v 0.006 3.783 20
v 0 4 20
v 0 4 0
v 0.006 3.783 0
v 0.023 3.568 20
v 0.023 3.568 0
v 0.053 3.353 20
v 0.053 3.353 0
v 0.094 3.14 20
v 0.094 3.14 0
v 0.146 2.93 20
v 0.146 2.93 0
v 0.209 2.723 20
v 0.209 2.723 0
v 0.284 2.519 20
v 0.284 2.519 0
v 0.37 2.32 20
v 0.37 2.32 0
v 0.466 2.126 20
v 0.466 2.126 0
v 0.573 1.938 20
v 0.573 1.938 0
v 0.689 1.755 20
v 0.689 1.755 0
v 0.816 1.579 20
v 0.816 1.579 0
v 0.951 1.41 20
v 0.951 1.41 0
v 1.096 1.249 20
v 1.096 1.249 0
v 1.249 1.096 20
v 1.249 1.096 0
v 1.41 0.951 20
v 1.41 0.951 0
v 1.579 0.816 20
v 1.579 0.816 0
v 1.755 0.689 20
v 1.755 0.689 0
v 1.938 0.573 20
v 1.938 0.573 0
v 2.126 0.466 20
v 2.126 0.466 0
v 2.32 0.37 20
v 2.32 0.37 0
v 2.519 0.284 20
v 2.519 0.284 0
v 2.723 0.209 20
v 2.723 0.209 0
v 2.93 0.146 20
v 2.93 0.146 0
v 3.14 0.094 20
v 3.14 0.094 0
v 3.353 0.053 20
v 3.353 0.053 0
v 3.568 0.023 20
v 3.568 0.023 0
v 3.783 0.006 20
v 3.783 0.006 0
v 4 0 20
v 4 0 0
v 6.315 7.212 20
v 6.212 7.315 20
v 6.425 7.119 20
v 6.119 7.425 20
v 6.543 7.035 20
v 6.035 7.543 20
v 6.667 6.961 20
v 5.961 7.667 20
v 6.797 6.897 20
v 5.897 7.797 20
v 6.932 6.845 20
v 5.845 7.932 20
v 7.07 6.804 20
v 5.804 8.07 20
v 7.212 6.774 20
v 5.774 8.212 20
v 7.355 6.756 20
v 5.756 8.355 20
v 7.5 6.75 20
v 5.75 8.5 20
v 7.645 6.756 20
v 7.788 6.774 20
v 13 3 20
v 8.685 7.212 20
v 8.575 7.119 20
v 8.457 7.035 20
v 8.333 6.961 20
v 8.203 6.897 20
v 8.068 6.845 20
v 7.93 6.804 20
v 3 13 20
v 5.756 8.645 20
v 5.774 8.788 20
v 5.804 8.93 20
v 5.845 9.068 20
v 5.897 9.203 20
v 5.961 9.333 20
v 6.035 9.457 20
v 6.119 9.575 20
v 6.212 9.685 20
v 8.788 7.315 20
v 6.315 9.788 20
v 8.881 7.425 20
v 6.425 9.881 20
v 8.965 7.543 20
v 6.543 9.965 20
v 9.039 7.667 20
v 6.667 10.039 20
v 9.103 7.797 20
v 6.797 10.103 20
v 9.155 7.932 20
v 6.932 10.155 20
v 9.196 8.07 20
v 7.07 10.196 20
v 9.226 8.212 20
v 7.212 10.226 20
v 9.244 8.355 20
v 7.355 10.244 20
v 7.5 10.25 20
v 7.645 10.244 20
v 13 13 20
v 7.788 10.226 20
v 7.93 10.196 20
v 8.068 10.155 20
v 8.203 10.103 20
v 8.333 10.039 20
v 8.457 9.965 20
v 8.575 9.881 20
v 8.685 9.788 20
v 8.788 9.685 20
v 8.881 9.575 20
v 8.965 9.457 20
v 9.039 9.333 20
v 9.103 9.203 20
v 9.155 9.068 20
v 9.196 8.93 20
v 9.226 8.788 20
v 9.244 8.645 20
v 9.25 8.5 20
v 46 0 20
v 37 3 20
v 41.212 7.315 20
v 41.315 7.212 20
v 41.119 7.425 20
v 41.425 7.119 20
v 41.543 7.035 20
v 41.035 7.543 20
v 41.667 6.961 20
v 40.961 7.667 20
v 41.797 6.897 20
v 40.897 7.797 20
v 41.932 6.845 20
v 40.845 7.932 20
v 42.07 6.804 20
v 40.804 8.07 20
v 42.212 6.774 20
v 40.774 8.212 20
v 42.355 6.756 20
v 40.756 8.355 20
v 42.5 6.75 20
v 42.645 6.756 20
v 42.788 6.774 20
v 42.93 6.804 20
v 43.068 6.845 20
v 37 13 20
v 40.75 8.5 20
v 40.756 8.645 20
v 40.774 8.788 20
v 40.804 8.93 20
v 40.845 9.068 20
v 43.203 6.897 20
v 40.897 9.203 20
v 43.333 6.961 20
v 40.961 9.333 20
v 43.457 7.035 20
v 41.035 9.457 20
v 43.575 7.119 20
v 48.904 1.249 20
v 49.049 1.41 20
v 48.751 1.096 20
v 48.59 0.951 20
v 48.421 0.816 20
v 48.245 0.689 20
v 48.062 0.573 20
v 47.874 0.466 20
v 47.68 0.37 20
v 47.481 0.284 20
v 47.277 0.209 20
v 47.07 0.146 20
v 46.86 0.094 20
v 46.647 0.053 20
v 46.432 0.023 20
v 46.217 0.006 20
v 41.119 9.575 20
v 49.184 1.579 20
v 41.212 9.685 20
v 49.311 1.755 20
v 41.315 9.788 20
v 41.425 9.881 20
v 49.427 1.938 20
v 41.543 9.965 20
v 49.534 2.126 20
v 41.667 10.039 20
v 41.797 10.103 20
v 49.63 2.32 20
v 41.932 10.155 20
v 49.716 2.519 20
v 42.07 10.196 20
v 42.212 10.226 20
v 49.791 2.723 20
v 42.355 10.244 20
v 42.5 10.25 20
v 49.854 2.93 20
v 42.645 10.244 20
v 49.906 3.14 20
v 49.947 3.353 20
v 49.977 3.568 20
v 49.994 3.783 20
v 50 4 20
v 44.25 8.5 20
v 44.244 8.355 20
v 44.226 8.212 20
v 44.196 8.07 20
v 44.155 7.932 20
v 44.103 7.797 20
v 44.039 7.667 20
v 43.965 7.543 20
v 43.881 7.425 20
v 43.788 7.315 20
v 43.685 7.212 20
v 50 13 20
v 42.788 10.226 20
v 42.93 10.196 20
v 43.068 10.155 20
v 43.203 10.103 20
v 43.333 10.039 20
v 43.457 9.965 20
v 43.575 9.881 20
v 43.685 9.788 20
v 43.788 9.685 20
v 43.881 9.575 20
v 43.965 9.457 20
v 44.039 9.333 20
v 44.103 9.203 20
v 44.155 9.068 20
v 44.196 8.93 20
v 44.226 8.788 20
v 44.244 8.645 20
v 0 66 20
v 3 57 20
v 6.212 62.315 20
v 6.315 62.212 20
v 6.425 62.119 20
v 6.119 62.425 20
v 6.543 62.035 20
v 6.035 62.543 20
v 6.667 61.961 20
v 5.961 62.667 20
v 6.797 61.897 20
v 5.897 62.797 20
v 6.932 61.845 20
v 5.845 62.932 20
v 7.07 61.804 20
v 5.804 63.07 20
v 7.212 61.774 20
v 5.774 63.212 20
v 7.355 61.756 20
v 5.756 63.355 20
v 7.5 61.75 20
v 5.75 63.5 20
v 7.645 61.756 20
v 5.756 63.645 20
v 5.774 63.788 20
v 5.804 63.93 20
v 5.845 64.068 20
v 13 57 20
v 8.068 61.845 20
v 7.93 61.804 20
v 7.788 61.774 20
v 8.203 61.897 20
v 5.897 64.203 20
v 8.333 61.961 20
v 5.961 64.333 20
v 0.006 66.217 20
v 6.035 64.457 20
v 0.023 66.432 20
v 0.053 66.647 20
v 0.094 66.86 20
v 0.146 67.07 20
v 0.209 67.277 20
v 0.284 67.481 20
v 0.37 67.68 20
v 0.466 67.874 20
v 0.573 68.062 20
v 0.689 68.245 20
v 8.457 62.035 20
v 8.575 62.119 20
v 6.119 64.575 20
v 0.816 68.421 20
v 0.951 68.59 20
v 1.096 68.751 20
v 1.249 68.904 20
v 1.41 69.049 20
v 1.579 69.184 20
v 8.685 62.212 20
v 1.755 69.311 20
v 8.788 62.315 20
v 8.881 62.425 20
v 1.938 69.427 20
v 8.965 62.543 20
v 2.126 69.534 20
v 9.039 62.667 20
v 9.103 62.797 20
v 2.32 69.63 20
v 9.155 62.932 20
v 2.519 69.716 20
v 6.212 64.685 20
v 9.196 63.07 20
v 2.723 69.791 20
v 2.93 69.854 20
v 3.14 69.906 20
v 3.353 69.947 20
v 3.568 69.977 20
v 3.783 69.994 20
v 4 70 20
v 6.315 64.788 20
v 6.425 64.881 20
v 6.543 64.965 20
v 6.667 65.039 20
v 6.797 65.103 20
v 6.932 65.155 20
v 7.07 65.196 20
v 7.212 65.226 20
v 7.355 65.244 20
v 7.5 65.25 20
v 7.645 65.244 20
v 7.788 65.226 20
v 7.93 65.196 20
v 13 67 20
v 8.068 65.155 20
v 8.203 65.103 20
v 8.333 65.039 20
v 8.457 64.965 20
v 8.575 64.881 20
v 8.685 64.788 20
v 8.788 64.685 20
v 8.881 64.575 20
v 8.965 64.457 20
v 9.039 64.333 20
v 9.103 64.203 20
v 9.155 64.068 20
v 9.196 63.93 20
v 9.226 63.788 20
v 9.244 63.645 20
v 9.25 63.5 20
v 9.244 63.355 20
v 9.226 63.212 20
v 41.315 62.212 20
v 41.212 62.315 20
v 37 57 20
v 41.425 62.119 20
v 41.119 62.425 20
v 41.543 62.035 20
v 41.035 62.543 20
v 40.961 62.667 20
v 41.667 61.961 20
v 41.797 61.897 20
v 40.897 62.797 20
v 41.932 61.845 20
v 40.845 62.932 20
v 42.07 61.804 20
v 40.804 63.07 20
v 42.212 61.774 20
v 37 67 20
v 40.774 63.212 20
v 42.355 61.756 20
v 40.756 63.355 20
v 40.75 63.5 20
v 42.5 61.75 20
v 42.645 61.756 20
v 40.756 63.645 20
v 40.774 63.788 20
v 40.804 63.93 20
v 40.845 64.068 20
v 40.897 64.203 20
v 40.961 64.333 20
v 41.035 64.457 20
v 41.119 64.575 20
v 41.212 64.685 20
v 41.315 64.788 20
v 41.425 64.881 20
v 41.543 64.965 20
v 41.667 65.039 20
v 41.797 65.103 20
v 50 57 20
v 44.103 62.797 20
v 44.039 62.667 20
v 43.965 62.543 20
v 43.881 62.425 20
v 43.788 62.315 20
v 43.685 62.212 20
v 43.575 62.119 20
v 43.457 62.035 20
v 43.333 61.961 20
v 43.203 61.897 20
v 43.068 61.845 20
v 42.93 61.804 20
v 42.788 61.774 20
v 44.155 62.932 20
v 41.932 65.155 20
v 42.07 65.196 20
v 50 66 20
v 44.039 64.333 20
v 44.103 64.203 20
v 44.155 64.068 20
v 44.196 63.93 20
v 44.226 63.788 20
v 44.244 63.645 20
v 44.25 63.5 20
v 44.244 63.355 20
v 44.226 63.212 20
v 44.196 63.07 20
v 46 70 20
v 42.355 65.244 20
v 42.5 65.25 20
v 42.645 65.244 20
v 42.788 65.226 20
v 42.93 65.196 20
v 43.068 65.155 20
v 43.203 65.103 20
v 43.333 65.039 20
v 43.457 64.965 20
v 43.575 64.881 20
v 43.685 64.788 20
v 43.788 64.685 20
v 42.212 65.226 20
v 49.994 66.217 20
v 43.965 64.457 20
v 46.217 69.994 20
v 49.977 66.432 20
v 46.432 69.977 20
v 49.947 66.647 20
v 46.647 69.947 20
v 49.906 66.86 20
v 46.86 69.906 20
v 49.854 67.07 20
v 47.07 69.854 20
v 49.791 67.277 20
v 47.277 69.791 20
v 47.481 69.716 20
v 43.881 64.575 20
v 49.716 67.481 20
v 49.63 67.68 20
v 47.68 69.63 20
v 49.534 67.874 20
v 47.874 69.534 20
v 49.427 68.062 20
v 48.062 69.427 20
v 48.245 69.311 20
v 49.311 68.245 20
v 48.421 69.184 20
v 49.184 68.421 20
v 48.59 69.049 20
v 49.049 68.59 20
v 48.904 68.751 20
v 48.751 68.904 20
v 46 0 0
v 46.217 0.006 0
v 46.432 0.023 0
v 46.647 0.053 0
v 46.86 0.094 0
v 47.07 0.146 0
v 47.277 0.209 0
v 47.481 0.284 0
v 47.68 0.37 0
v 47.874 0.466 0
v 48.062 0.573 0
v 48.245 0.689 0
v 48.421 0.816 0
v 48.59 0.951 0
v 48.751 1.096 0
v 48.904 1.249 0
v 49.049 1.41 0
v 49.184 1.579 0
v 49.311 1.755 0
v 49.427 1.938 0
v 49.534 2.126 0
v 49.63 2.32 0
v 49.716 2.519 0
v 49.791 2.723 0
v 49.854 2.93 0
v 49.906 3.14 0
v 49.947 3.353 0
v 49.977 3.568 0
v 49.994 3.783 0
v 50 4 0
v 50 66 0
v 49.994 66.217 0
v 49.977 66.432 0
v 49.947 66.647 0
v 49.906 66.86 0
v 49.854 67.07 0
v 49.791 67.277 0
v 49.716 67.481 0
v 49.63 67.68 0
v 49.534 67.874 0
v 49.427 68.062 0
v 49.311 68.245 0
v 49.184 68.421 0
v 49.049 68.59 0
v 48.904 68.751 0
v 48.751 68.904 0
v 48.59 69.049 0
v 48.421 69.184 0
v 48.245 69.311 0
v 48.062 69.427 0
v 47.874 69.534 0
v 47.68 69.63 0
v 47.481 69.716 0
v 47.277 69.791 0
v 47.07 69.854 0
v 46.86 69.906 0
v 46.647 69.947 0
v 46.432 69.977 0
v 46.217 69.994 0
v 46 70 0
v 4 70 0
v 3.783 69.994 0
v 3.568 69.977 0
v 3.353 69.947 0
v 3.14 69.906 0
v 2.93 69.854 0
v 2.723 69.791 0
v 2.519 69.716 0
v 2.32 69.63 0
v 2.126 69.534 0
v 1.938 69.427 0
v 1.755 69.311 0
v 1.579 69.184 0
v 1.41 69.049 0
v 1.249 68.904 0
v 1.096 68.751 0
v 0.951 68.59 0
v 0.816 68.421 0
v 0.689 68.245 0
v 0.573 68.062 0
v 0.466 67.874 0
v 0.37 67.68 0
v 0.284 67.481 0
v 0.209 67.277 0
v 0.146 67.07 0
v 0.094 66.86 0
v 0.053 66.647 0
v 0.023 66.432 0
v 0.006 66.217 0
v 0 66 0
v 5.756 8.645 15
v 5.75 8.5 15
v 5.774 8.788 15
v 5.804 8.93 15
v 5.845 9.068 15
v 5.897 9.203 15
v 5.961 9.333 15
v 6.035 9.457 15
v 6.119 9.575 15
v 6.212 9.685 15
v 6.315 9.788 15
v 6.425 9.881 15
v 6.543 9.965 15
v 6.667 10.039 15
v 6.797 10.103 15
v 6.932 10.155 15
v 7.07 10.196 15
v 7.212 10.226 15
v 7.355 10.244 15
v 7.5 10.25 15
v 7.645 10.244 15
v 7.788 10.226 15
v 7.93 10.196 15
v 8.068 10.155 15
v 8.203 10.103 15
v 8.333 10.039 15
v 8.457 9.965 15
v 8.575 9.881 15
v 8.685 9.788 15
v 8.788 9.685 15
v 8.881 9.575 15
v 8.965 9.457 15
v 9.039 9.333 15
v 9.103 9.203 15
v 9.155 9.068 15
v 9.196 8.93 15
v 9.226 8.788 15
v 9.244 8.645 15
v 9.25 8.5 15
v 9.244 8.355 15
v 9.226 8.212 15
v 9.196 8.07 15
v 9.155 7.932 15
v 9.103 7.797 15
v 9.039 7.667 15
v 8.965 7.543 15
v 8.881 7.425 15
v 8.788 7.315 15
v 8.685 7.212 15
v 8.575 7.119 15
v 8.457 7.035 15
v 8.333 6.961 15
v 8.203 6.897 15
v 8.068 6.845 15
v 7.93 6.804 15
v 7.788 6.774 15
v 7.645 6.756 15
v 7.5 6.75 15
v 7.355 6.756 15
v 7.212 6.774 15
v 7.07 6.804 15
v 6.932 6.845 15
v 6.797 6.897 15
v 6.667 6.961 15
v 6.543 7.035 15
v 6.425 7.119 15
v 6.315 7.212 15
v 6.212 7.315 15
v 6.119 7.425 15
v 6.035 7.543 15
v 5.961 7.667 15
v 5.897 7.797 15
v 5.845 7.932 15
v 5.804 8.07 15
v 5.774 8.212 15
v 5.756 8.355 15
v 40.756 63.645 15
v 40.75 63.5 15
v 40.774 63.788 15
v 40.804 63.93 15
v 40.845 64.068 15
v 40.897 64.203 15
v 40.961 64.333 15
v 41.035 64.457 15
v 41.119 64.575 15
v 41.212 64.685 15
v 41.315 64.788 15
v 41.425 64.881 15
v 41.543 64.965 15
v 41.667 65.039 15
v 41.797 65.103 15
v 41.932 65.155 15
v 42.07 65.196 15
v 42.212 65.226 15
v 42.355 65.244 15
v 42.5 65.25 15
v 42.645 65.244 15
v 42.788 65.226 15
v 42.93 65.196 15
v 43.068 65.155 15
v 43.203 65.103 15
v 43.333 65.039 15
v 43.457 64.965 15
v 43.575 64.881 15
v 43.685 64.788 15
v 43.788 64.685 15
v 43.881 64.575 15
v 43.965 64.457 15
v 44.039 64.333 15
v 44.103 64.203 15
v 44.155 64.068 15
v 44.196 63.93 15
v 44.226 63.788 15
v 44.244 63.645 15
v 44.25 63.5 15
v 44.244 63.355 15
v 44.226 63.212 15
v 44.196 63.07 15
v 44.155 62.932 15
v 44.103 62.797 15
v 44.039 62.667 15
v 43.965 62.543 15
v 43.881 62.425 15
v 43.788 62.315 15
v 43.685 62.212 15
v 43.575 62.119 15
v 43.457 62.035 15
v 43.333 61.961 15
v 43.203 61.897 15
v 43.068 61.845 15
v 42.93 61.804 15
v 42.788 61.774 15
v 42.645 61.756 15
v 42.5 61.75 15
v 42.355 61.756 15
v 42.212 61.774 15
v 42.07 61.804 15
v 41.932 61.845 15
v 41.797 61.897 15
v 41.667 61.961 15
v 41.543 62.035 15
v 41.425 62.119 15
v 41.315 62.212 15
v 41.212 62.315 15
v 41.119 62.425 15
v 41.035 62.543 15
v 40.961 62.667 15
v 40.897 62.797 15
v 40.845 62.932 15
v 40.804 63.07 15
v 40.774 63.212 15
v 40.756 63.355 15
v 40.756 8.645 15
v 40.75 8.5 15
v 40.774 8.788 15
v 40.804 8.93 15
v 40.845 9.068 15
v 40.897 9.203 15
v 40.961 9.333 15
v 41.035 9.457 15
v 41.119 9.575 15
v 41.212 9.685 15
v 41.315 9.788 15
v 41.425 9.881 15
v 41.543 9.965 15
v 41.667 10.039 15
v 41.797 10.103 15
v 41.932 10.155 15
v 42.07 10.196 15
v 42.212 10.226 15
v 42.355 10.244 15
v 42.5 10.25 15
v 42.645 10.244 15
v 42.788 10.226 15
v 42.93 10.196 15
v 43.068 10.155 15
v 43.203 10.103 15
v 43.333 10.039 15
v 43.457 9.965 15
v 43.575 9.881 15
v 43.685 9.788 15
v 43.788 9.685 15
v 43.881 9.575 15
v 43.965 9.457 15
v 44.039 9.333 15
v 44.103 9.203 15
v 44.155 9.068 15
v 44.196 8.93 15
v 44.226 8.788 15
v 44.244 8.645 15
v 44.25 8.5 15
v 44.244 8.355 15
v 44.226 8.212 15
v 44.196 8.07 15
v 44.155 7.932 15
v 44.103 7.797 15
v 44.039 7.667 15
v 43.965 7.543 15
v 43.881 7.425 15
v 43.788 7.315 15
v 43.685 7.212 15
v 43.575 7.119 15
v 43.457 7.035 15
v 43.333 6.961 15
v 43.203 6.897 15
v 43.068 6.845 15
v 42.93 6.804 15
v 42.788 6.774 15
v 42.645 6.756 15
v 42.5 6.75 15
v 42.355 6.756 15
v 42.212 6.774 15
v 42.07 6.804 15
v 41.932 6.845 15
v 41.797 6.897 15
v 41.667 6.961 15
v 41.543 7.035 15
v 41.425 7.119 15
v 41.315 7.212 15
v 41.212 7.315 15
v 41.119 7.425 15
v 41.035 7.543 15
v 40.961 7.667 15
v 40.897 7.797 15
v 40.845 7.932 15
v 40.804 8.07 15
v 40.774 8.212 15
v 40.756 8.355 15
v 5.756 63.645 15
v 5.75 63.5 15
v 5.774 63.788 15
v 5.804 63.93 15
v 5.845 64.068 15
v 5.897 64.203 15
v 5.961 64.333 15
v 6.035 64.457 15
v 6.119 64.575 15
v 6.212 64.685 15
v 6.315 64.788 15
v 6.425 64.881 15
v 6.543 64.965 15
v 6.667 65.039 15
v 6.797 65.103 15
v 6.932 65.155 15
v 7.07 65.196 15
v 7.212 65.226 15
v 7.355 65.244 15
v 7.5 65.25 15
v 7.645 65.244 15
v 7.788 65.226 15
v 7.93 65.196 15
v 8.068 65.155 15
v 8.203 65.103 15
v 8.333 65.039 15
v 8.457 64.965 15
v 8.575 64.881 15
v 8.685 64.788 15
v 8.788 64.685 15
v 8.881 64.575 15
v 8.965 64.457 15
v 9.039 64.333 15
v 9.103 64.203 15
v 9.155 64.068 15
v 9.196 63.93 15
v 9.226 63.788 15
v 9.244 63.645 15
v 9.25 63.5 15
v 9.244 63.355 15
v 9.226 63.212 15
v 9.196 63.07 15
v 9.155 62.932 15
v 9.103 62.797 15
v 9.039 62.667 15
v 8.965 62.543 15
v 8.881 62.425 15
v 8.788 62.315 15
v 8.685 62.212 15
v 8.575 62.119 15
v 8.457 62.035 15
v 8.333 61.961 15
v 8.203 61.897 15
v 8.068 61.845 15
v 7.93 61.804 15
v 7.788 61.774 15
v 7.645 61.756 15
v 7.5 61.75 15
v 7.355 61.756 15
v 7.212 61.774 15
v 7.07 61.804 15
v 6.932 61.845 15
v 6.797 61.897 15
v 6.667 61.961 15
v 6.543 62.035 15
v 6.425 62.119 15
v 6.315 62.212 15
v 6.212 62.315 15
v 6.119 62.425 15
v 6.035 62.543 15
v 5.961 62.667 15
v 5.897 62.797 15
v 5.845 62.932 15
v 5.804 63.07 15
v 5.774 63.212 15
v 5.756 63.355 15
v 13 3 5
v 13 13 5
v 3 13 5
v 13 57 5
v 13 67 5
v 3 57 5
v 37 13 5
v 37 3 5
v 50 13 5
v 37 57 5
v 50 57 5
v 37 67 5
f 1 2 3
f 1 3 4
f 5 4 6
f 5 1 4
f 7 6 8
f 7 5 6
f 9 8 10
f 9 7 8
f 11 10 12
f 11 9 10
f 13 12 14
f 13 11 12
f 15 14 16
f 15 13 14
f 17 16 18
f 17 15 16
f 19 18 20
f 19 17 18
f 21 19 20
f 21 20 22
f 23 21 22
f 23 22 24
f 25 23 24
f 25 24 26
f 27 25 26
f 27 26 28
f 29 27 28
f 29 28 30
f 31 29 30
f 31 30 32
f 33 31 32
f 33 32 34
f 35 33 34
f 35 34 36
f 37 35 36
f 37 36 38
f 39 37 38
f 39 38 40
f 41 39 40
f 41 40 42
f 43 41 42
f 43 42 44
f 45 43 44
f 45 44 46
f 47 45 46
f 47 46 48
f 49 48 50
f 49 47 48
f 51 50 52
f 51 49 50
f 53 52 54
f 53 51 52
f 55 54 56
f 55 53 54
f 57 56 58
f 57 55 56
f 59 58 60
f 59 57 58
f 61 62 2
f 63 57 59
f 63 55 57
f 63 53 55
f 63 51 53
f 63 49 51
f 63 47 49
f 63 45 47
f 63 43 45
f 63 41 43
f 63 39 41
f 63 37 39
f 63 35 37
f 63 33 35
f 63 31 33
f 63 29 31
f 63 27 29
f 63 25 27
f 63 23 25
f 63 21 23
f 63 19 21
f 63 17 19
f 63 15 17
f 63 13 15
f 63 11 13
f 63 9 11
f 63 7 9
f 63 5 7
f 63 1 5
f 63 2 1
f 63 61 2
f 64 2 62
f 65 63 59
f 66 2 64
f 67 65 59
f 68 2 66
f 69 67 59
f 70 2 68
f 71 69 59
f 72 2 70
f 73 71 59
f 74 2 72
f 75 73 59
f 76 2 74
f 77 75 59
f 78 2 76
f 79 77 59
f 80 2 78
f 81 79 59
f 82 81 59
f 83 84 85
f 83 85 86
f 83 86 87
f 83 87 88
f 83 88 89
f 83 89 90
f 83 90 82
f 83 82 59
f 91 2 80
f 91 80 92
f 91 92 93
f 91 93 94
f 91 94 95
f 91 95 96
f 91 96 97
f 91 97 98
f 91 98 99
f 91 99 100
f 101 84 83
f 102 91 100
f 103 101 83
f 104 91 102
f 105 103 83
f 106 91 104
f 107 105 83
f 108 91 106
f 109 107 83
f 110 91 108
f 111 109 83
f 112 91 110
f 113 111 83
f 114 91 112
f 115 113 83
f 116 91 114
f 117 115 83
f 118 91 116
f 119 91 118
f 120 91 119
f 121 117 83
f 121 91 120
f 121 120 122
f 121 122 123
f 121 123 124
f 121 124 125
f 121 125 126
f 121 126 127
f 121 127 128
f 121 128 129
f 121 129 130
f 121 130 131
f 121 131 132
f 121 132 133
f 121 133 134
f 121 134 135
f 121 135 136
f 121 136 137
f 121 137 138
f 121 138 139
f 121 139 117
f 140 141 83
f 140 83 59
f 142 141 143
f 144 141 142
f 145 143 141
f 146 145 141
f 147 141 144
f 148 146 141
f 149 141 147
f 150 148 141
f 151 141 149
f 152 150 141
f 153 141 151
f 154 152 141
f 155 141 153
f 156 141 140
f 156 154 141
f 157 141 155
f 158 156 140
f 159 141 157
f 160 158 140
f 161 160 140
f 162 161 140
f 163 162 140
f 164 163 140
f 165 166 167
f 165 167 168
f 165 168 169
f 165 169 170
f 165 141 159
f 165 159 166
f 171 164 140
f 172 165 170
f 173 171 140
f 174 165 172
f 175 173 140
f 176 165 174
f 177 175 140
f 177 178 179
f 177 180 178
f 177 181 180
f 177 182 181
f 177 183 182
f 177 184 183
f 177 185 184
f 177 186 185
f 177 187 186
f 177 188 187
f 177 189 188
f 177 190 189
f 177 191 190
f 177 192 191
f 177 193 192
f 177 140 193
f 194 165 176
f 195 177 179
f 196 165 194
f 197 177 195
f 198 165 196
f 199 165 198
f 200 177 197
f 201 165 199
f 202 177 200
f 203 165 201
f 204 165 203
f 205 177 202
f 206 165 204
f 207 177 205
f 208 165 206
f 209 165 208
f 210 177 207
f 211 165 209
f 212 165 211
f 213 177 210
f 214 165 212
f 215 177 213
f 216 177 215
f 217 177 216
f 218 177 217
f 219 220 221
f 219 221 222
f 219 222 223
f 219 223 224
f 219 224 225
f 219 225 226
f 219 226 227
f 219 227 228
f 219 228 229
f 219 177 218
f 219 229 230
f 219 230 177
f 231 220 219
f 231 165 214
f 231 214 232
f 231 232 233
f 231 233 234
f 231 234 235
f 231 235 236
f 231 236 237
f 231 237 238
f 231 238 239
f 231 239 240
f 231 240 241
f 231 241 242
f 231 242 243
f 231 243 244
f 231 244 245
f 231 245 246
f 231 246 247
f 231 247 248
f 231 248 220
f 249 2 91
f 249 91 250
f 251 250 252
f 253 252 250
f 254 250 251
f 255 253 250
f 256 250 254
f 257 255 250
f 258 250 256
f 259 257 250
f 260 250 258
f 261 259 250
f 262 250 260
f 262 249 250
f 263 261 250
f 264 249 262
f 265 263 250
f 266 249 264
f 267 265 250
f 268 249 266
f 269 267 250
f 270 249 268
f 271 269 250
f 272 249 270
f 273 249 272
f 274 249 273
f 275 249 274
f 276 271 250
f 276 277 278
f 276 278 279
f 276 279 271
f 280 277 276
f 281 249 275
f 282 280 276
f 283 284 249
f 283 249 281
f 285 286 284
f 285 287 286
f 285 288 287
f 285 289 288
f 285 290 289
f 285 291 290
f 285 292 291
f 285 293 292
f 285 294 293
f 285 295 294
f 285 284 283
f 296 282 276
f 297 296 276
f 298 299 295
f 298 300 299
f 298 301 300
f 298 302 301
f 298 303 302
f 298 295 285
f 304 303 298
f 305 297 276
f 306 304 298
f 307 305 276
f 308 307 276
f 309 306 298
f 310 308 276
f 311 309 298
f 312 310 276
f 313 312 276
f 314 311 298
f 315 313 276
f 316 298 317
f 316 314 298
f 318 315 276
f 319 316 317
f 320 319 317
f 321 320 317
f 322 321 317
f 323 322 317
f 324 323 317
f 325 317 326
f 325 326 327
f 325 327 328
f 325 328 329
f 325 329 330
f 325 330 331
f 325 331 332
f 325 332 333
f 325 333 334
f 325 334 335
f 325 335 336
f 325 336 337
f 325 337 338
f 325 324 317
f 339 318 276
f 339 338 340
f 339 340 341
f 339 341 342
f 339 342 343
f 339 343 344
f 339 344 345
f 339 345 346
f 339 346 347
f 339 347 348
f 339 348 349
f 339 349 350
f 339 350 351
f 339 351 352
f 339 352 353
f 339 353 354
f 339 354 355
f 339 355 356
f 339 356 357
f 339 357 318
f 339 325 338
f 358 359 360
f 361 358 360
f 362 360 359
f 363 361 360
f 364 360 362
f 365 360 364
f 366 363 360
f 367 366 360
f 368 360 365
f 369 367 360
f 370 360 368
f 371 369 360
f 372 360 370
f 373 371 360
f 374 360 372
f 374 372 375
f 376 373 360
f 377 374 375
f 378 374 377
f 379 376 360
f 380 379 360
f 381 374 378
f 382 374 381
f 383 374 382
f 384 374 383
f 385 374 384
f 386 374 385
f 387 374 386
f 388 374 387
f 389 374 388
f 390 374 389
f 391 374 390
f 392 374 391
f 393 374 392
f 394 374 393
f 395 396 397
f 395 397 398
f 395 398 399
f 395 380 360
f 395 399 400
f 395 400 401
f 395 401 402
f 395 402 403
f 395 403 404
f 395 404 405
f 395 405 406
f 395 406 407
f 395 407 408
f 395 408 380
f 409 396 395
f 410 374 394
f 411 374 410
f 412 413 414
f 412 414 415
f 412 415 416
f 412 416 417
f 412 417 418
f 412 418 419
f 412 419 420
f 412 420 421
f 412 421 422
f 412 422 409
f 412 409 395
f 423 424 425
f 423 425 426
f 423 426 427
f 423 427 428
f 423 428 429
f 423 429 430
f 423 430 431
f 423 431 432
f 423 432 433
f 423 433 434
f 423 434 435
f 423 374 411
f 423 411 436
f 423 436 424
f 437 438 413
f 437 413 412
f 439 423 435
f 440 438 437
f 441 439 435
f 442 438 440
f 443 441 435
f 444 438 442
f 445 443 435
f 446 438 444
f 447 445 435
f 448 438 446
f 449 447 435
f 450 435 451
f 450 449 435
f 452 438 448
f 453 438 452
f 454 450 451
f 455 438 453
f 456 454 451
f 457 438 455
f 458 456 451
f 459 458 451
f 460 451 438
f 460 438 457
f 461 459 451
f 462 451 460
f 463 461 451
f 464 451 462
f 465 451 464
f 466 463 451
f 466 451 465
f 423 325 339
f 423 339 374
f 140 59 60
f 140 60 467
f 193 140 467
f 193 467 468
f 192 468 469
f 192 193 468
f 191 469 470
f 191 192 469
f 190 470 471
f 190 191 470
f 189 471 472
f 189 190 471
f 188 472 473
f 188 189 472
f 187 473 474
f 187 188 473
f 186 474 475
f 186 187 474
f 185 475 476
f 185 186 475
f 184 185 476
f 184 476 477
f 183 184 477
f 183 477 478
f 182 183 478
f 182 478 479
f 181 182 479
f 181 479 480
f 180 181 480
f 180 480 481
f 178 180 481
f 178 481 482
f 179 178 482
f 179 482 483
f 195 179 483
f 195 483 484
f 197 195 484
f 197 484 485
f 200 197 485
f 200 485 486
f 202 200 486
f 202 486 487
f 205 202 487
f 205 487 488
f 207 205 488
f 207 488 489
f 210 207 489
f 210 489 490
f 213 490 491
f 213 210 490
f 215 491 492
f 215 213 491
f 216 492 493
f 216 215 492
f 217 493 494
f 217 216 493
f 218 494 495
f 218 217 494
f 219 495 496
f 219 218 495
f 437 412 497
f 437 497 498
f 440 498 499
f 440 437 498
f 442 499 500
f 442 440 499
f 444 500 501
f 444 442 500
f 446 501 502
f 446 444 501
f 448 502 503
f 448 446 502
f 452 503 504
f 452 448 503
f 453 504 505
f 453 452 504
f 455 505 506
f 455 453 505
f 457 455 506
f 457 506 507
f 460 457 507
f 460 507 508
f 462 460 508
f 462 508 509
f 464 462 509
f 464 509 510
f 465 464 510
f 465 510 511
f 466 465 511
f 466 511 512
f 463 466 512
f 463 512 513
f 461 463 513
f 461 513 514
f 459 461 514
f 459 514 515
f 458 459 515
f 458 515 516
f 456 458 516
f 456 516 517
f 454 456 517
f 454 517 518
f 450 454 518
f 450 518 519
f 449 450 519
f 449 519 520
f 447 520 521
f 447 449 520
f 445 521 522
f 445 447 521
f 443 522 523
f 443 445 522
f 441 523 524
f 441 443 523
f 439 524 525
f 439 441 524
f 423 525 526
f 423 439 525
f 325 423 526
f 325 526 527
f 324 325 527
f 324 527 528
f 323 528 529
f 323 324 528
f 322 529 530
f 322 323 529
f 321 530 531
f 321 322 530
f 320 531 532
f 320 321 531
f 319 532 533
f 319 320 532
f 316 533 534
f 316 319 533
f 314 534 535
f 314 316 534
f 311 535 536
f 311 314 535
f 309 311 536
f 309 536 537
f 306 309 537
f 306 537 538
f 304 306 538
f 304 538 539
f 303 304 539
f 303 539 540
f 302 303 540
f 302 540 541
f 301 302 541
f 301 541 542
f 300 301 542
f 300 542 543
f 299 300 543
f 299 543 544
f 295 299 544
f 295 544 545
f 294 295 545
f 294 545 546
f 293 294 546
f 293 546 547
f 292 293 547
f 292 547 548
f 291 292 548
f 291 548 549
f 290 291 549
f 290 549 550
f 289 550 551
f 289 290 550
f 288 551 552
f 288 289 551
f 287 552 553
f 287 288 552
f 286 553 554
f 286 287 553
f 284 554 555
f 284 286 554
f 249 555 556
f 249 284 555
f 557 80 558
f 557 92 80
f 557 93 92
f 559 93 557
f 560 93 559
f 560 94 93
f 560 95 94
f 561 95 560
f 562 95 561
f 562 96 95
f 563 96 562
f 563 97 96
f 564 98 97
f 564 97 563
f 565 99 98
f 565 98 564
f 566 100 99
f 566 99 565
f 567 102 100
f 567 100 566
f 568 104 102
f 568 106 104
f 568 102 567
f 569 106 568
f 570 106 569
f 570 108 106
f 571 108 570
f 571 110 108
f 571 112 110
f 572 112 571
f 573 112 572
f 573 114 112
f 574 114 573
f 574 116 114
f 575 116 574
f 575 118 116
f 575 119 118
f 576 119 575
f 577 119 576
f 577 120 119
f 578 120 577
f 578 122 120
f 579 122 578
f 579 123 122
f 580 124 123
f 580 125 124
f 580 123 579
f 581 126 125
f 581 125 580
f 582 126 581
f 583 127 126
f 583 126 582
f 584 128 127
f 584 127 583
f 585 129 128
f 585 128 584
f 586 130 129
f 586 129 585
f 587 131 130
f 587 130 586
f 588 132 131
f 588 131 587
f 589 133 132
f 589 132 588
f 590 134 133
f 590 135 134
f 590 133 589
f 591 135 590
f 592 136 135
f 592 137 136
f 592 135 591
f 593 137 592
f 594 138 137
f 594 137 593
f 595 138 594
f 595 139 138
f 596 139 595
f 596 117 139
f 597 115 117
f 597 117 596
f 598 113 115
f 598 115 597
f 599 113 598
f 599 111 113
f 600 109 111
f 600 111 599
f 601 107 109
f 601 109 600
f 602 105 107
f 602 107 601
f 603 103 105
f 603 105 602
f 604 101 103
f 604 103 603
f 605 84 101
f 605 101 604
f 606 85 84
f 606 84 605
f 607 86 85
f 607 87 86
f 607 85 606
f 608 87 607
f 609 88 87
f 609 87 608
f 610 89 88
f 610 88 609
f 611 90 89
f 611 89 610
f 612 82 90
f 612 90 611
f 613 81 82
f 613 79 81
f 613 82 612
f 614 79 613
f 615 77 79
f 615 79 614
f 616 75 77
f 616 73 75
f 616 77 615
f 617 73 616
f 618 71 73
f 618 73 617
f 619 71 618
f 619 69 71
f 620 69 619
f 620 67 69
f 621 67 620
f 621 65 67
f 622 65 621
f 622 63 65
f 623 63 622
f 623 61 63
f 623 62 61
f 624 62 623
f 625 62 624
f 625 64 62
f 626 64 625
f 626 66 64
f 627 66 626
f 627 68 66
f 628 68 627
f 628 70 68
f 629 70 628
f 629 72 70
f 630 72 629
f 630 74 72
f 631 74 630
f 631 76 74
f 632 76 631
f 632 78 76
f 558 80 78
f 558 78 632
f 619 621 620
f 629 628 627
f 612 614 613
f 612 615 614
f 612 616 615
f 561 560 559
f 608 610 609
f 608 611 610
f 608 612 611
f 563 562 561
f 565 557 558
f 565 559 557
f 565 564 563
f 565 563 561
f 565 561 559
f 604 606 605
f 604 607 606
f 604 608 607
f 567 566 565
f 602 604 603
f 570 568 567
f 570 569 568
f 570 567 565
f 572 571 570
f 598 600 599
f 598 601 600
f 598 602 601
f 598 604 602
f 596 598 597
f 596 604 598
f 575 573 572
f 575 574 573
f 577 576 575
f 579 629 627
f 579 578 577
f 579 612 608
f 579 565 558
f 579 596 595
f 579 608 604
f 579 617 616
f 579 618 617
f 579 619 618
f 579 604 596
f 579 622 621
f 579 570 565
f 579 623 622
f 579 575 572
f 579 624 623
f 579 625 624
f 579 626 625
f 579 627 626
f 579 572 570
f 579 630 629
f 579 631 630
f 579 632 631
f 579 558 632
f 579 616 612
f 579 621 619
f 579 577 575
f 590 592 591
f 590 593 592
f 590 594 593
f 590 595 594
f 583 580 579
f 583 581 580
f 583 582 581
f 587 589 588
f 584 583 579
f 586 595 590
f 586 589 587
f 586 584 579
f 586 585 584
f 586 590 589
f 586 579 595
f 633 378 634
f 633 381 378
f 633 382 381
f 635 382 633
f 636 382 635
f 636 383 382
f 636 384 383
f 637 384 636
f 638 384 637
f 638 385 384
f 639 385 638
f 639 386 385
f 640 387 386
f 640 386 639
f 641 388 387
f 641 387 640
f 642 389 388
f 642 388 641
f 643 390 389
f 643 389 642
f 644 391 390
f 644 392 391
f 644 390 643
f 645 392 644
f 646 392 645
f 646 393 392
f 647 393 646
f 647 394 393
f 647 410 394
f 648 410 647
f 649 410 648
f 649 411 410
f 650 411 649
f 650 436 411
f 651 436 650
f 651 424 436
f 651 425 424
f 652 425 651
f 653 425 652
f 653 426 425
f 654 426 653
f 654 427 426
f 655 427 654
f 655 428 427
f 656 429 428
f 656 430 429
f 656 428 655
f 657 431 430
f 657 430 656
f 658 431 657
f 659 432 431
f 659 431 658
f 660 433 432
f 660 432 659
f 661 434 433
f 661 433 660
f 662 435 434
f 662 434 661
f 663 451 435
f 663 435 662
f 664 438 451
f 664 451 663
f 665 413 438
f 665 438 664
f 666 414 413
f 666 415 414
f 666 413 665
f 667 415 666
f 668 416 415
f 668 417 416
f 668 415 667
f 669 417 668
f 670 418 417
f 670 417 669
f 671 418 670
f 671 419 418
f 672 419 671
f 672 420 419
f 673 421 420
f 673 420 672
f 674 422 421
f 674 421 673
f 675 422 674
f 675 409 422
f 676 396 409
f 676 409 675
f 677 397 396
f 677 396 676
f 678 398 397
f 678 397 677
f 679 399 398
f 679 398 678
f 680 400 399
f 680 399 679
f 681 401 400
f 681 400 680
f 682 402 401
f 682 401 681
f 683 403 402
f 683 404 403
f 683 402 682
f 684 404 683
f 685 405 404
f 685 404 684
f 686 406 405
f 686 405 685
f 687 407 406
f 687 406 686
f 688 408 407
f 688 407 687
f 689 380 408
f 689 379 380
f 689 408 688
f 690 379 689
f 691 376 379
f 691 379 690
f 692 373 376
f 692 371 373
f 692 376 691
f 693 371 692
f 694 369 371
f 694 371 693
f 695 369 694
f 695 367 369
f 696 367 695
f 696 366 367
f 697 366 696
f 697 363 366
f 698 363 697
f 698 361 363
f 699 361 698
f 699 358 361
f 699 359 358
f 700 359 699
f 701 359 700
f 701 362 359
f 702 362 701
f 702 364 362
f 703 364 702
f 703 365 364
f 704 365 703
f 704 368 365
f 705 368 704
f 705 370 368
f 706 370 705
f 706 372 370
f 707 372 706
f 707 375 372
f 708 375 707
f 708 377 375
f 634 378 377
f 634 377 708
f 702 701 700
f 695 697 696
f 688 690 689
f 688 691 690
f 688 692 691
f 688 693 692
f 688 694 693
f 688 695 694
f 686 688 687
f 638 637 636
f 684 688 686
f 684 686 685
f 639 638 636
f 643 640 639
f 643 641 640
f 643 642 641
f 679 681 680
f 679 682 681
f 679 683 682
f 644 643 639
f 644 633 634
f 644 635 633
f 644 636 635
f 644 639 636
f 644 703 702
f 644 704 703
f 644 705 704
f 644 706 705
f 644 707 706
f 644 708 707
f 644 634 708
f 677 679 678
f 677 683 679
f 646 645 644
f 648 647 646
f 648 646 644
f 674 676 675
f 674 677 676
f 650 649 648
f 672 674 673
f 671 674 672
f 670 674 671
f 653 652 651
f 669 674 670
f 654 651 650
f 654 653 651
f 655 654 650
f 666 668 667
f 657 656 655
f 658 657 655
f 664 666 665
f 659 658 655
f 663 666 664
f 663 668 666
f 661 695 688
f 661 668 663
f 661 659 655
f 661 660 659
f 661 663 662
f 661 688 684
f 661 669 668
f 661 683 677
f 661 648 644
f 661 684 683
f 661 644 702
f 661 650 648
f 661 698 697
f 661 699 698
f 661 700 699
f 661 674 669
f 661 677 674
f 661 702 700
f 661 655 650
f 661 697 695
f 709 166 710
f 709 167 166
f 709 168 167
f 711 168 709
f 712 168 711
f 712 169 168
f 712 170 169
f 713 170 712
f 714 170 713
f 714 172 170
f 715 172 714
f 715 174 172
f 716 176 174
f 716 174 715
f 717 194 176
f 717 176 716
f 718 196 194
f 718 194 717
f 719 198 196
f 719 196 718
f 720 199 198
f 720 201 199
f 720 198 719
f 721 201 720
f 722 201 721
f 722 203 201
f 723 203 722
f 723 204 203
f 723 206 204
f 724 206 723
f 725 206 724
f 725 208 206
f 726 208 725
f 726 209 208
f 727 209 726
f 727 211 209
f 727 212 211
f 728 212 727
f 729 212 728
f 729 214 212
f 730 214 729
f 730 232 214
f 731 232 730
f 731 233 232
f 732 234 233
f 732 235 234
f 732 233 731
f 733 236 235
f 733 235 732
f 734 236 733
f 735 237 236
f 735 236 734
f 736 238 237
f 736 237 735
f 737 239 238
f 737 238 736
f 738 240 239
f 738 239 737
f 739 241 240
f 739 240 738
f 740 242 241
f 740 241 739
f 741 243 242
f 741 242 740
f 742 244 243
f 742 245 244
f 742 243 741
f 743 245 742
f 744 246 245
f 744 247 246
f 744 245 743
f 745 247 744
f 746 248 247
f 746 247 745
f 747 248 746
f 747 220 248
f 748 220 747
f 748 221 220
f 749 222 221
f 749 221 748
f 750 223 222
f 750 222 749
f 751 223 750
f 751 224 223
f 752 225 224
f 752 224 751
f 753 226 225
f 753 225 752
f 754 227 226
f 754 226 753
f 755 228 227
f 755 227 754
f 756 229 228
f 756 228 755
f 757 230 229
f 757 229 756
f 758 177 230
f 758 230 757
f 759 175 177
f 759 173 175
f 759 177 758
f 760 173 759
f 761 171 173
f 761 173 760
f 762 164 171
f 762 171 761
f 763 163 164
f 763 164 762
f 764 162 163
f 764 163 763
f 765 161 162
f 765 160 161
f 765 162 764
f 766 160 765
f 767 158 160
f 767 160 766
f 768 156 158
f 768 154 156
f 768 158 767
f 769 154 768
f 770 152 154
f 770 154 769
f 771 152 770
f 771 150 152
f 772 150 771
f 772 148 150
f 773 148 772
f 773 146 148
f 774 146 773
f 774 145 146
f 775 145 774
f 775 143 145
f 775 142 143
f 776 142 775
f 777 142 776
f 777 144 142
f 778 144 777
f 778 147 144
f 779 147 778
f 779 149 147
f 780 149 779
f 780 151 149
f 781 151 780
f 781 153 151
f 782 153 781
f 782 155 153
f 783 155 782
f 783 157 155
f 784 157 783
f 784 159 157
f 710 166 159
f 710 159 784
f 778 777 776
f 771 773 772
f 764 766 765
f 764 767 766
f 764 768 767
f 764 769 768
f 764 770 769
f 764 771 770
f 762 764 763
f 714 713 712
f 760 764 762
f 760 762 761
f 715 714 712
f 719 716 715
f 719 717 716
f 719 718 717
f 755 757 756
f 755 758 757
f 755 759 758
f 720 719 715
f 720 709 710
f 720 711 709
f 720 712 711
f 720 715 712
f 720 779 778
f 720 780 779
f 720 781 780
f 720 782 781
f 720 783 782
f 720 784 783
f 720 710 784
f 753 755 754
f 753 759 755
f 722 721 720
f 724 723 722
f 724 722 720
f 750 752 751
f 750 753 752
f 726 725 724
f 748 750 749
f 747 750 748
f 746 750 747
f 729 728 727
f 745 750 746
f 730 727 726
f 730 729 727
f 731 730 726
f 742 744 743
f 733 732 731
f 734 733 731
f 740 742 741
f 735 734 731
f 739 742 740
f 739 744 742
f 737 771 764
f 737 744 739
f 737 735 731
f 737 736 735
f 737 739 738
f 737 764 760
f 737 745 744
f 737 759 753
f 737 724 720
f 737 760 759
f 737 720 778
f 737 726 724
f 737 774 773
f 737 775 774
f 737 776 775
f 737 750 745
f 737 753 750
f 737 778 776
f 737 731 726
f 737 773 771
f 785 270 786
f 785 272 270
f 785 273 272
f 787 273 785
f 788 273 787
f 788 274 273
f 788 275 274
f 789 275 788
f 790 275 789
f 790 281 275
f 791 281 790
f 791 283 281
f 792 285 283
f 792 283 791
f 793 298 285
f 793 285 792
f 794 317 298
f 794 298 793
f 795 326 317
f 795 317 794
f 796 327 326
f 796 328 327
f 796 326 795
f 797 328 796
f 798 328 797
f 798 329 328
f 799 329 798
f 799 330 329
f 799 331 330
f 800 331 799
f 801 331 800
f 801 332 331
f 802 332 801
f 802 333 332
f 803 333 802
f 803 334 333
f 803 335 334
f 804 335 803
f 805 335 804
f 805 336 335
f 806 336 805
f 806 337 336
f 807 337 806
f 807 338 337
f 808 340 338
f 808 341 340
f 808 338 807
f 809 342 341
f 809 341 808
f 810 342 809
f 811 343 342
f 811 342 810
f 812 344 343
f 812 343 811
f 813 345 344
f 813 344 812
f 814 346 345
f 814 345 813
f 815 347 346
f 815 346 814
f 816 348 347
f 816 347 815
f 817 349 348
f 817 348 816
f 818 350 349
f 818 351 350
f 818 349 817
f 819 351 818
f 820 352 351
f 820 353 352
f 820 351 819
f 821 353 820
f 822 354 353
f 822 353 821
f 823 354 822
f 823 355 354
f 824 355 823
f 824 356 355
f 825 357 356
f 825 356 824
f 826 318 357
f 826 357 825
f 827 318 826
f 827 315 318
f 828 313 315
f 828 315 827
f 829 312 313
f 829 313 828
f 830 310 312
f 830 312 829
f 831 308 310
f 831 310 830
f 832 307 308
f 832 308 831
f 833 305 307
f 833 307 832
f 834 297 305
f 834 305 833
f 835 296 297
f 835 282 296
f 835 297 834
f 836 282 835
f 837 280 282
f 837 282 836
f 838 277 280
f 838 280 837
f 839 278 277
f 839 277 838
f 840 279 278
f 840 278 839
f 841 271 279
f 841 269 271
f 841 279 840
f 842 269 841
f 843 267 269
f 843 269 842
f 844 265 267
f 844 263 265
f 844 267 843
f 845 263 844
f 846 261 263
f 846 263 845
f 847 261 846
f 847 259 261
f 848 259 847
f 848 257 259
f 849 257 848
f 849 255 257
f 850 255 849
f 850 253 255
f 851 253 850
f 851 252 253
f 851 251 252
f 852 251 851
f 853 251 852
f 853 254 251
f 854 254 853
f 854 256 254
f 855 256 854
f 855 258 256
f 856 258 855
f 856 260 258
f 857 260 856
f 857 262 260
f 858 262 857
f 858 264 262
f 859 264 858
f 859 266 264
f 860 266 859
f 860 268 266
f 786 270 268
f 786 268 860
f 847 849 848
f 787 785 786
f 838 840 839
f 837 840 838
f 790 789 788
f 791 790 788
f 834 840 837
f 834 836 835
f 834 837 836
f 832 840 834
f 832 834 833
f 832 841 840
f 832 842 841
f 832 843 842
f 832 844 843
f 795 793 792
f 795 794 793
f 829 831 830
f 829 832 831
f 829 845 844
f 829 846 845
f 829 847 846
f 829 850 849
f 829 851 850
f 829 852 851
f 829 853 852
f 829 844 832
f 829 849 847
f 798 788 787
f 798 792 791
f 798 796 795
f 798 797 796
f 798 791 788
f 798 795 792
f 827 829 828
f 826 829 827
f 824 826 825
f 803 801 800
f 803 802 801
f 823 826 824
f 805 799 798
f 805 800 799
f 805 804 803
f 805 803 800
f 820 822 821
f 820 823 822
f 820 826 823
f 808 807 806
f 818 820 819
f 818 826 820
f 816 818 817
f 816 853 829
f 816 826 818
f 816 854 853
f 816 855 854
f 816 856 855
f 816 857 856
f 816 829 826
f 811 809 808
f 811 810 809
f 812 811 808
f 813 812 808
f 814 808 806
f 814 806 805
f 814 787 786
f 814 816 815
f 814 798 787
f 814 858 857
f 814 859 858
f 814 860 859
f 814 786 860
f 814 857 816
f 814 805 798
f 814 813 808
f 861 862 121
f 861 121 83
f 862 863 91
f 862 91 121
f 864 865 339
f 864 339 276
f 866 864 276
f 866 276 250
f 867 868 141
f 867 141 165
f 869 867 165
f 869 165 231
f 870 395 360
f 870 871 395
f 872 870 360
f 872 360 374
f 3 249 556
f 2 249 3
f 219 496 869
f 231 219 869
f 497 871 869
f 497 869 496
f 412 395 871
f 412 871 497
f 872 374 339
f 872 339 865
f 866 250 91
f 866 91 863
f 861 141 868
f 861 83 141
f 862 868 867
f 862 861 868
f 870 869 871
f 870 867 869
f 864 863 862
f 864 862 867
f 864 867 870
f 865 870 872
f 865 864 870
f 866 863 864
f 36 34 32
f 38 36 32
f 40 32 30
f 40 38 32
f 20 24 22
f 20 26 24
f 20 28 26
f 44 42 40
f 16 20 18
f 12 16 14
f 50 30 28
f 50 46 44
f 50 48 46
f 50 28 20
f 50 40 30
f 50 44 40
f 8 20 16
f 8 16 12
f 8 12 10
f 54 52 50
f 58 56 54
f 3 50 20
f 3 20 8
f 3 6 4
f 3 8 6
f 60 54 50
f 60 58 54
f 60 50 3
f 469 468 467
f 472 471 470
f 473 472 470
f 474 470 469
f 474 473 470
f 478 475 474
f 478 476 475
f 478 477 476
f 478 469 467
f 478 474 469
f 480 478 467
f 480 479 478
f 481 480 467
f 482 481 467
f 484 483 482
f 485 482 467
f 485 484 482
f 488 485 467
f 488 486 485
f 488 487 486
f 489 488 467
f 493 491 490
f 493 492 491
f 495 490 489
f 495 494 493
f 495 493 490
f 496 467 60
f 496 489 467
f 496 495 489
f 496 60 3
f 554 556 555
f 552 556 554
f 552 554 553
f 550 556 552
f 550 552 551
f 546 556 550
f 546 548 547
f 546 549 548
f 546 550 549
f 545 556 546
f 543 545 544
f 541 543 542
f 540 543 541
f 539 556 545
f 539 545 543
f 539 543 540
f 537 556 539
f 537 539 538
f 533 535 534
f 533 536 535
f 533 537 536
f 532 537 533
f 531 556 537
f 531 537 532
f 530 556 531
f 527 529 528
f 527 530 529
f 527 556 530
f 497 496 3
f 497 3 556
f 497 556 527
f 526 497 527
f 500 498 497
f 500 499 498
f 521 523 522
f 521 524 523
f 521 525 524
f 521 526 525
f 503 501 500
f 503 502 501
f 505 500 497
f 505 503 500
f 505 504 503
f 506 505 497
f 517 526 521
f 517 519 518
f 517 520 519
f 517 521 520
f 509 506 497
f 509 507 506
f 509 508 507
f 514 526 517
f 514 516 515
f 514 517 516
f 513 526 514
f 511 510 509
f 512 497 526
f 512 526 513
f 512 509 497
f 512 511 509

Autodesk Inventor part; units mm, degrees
ref_plane "YZ Plane" through (0, 0, 0) normal (1, 0, 0) x (0, 1, 0)
ref_plane "XZ Plane" through (0, 0, 0) normal (0, 1, 0) x (-1, 0, 0)
ref_plane "XY Plane" through (0, 0, 0) normal (0, 0, 1) x (1, 0, 0)
sketch "Sketch1" plane through (0, 0, 0) normal (0, 0, 1) x (1, 0, 0)
  line L0 (0, 0) -> (50, 0)
  line L1 (50, 0) -> (50, 70)
  line L2 (50, 70) -> (0, 70)
  line L3 (0, 70) -> (0, 0)
  dimension "d0" = 50
  dimension "d1" = 70
extrude "Extrusion1" add sketch "Sketch1" along normal blind 20
sketch "Sketch2" plane through (0, 0, 20) normal (0, 0, 1) x (1, 0, 0)
  line L0 (50, 70) -> (0, 70) projected
  line L1 (0, 0) -> (50, 0) projected
  line L2 (3, 67) -> (47, 67)
  line L3 (47, 67) -> (47, 3)
  line L4 (47, 3) -> (3, 3)
  line L5 (3, 3) -> (3, 67)
  line L6 (0, 70) -> (0, 0) projected
  dimension "d4" = 44
  dimension "d5" = 64
  dimension "d6" = 3
  dimension "d7" = 3
extrude "Extrusion2" cut sketch "Sketch2" against normal blind 15
sketch "Sketch3" plane through (0, 0, 20) normal (0, 0, 1) x (1, 0, 0)
  line L0 (50, 70) -> (0, 70) projected
  line L1 (0, 70) -> (13, 70)
  line L2 (13, 70) -> (13, 57)
  line L3 (13, 57) -> (0, 57)
  line L4 (0, 57) -> (0, 70)
  line L5 (0, 0) -> (50, 0) projected
  line L6 (0, 0) -> (13, 0)
  line L7 (13, 0) -> (13, 13)
  line L8 (13, 13) -> (0, 13)
  line L9 (0, 13) -> (0, 0)
  line L10 (50, 70) -> (37, 70)
  line L11 (37, 70) -> (37, 57)
  line L12 (37, 57) -> (50, 57)
  line L13 (50, 57) -> (50, 70)
  line L14 (50, 0) -> (37, 0)
  line L15 (37, 0) -> (37, 13)
  line L16 (37, 13) -> (50, 13)
  line L17 (50, 13) -> (50, 0)
  point P0 (37, 0)
  dimension "d10" = 13
  dimension "d11" = 13
extrude "Extrusion3" add sketch "Sketch3" against normal up to surface (15 mm away)
sketch "Sketch4" plane through (0, 0, 20) normal (0, 0, 1) x (1, 0, 0)
  line L0 (7.5, 63.5) -> (42.5, 63.5)
  line L1 (42.5, 63.5) -> (42.5, 8.5)
  line L2 (42.5, 8.5) -> (7.5, 8.5)
  line L3 (7.5, 8.5) -> (7.5, 63.5)
  circle A0 centre (7.5, 63.5) radius 1.75
  circle A1 centre (42.5, 63.5) radius 1.75
  circle A2 centre (42.5, 8.5) radius 1.75
  circle A3 centre (7.5, 8.5) radius 1.75
  line L4 (50, 70) -> (0, 70) projected
  line L5 (47, 57) -> (37, 57) projected
  line L6 (50, 0) -> (50, 70) projected
  point P0 (0, 0)
  dimension "d18" = 3.5
  dimension "d22" = 35
  dimension "d23" = 55
  dimension "d24" = 7.5
  dimension "d25" = 6.5
extrude "Extrusion4" cut sketch "Sketch4" against normal blind 5 contours L3 A0 L0 | L0 A0 L3 | A1 L1 L0 | L0 L1 A1 | A3 L2 L3 | L3 L2 A3 | A2 L1 L2 | L2 L1 A2
sketch "Sketch5" plane through (50, 0, 0) normal (1, 0, 0) x (0, 0, -1)
  line L0 (-20, 13) -> (-5, 13) projected
  line L1 (-20, 57) -> (-5, 57) projected
  line L2 (-5, 13) -> (-5, 57) projected
  line L3 (-20, 13) -> (-5, 13)
  line L4 (-5, 13) -> (-5, 57)
  line L5 (-5, 57) -> (-20, 57)
  line L6 (-20, 57) -> (-20, 13)
  point P0 (0, 0)
extrude "Extrusion5" cut sketch "Sketch5" against normal up to surface (47 mm away)
fillet "Fillet2" radius 4 4 edges at (0, 70, 10) (50, 70, 10) (50, 0, 10) (0, 0, 10)
properties part number "HOLDER"
